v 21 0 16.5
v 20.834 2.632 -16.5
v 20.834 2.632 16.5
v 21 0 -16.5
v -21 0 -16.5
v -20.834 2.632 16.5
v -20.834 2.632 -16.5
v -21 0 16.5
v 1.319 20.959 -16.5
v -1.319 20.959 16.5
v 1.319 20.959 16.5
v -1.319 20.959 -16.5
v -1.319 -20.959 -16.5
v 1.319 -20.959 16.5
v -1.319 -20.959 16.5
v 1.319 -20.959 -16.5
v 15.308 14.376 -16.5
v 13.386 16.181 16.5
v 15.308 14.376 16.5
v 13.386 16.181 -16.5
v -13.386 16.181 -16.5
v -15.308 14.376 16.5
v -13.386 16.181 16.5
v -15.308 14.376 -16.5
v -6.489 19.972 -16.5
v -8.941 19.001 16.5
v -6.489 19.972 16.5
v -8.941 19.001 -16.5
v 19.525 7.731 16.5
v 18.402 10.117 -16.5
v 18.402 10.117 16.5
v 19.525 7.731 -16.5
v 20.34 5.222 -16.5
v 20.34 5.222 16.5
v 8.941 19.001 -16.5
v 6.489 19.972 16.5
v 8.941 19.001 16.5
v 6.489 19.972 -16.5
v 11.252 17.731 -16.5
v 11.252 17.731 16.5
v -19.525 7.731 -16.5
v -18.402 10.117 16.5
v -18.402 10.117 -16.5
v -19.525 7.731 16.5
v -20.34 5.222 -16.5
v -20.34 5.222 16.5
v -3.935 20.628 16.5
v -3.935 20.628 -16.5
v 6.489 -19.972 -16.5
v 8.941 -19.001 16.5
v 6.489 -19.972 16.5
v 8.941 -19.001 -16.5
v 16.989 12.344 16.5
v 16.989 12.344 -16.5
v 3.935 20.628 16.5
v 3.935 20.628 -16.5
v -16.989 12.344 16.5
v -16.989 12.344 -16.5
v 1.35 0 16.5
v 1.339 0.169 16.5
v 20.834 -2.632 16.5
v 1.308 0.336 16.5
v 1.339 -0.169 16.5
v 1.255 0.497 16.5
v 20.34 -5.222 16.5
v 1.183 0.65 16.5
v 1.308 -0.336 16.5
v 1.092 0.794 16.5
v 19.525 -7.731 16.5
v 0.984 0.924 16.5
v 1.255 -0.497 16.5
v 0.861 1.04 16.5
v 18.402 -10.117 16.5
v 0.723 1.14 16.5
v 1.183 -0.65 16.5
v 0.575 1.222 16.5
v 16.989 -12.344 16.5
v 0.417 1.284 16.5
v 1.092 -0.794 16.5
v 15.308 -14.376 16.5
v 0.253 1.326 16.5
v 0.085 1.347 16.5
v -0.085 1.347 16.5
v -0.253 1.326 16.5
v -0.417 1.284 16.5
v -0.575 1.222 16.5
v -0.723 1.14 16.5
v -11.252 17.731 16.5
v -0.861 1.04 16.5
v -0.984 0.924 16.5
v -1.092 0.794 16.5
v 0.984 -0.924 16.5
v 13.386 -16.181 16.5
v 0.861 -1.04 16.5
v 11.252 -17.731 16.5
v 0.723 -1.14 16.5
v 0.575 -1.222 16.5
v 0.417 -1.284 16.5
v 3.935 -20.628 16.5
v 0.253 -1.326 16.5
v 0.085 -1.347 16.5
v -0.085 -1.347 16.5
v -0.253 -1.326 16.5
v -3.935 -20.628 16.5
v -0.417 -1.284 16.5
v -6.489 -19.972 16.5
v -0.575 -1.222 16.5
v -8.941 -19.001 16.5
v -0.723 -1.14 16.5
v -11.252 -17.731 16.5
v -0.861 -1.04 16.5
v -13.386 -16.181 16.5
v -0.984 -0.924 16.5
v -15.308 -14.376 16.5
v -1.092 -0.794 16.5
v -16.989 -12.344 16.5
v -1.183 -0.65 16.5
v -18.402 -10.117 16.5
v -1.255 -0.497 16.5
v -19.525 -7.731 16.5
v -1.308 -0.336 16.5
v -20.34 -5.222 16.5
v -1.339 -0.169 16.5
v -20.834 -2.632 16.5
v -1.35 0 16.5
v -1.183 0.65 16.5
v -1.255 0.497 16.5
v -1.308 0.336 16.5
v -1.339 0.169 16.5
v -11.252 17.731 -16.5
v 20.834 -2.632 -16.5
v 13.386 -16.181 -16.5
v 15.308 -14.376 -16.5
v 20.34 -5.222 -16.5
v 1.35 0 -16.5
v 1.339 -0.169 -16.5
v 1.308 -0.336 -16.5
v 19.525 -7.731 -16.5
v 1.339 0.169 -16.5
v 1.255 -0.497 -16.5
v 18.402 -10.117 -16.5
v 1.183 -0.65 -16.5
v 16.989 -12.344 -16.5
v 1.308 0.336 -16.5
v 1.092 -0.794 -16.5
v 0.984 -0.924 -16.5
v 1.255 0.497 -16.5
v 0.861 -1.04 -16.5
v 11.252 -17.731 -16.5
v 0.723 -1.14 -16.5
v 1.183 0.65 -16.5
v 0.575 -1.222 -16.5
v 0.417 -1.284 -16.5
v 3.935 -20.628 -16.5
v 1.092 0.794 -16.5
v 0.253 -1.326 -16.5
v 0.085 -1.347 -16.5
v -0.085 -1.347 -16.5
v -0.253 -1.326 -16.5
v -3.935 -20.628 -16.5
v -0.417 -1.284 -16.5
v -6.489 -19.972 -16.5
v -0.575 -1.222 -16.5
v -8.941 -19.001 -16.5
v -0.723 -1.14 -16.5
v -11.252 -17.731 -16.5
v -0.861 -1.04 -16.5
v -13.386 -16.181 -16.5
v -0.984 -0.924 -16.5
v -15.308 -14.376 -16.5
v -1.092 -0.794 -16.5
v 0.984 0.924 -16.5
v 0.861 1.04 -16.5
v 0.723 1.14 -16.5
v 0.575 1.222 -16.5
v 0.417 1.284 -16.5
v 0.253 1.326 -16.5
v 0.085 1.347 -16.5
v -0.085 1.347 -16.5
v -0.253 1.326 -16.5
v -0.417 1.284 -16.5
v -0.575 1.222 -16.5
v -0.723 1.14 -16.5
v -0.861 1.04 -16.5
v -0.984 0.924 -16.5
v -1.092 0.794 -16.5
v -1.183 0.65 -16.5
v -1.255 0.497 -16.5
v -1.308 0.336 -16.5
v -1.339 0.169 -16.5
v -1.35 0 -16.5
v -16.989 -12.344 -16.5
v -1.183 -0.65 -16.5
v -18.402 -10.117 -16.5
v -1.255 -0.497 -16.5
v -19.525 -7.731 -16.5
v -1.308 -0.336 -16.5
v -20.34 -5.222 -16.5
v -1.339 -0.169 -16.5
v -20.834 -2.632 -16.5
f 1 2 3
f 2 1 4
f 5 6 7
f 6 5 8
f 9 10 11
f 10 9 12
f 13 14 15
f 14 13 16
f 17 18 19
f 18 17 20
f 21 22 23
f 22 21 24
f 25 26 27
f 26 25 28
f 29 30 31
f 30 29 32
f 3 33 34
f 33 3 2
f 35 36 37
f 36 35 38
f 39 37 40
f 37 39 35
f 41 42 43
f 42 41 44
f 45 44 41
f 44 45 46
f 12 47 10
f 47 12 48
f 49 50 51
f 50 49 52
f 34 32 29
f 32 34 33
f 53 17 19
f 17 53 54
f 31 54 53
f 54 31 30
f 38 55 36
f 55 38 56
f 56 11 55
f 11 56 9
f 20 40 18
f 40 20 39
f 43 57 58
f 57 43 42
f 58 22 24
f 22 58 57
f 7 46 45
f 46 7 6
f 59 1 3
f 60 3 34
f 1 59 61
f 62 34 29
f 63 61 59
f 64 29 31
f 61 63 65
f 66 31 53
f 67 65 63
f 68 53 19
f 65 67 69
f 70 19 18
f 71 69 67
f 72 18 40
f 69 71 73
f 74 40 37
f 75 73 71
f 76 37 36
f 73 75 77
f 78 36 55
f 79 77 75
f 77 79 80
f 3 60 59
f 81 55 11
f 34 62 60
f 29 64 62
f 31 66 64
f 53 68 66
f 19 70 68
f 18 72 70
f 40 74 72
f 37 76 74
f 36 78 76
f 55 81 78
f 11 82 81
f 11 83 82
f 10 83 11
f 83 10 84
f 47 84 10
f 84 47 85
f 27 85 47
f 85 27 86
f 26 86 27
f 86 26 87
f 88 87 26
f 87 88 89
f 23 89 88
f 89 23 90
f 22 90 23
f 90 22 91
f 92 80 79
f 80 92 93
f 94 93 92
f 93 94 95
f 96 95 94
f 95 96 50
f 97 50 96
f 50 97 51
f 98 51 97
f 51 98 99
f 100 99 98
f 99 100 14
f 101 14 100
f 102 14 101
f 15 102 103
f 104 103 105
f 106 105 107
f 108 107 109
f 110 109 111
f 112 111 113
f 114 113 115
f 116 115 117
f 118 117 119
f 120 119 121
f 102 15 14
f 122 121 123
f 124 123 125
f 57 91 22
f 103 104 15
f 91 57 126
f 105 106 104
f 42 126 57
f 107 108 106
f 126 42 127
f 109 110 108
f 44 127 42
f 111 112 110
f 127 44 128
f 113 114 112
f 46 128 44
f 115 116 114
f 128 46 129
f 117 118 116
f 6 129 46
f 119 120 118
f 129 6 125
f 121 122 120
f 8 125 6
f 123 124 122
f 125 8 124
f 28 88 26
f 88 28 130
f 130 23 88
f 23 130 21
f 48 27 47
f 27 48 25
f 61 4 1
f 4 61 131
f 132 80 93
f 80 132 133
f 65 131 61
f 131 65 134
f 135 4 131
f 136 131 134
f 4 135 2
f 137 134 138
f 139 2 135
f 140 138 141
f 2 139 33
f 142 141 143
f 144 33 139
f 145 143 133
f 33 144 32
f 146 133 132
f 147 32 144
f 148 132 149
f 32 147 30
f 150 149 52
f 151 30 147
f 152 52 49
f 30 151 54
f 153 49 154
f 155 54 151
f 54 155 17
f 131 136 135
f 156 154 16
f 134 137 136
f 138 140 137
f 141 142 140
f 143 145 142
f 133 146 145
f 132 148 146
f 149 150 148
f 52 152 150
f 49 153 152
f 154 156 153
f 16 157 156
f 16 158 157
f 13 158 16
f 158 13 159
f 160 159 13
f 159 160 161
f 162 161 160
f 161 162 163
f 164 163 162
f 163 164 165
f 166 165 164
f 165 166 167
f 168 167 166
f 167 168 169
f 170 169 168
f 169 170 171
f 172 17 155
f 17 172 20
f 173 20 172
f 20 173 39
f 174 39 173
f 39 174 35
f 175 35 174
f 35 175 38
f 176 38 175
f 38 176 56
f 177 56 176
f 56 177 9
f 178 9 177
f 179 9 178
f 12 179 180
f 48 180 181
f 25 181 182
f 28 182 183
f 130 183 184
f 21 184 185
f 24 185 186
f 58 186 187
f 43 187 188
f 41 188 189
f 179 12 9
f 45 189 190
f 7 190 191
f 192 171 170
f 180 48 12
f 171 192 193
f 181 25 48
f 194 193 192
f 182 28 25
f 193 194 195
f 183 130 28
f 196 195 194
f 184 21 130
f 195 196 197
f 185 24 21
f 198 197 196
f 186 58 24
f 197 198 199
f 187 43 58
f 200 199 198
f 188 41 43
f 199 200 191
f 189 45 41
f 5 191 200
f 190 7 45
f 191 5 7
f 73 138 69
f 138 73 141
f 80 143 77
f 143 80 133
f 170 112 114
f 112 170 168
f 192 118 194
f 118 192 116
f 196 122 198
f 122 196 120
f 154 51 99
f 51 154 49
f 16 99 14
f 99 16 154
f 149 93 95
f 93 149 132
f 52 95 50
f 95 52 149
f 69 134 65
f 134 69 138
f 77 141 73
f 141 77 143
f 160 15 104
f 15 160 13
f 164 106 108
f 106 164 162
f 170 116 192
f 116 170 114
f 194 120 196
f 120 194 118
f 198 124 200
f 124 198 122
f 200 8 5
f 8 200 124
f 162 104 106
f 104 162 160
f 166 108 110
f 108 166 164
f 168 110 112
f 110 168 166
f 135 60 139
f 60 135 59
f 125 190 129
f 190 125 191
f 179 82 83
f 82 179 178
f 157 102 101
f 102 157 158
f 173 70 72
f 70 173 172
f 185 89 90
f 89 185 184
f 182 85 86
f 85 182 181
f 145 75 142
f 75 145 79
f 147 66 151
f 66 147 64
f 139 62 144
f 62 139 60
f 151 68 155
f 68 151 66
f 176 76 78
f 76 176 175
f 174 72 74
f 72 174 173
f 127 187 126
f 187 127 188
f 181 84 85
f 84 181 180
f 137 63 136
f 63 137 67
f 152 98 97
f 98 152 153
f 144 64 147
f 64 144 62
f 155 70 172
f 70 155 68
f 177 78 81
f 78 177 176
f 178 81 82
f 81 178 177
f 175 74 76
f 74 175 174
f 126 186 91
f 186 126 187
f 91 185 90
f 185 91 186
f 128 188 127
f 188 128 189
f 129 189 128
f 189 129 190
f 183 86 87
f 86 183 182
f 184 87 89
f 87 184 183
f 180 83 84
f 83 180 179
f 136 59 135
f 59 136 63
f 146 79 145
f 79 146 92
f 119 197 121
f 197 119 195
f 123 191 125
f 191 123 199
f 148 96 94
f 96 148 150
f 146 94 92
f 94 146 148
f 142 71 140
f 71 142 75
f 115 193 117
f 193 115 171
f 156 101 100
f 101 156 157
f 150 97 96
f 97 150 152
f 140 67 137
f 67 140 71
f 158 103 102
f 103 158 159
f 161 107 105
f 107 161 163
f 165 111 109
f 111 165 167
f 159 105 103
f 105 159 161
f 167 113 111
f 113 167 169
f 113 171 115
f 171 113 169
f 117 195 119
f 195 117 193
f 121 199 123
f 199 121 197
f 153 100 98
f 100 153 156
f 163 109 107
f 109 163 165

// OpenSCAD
$fn = 50;


difference() {
	union() {
		translate(v = [0, 0, -16.5000000000]) {
			cylinder(h = 33, r = 21.0000000000);
		}
	}
	union() {
		translate(v = [0, 0, -100.0000000000]) {
			cylinder(h = 200, r = 1.3500000000);
		}
	}
}
